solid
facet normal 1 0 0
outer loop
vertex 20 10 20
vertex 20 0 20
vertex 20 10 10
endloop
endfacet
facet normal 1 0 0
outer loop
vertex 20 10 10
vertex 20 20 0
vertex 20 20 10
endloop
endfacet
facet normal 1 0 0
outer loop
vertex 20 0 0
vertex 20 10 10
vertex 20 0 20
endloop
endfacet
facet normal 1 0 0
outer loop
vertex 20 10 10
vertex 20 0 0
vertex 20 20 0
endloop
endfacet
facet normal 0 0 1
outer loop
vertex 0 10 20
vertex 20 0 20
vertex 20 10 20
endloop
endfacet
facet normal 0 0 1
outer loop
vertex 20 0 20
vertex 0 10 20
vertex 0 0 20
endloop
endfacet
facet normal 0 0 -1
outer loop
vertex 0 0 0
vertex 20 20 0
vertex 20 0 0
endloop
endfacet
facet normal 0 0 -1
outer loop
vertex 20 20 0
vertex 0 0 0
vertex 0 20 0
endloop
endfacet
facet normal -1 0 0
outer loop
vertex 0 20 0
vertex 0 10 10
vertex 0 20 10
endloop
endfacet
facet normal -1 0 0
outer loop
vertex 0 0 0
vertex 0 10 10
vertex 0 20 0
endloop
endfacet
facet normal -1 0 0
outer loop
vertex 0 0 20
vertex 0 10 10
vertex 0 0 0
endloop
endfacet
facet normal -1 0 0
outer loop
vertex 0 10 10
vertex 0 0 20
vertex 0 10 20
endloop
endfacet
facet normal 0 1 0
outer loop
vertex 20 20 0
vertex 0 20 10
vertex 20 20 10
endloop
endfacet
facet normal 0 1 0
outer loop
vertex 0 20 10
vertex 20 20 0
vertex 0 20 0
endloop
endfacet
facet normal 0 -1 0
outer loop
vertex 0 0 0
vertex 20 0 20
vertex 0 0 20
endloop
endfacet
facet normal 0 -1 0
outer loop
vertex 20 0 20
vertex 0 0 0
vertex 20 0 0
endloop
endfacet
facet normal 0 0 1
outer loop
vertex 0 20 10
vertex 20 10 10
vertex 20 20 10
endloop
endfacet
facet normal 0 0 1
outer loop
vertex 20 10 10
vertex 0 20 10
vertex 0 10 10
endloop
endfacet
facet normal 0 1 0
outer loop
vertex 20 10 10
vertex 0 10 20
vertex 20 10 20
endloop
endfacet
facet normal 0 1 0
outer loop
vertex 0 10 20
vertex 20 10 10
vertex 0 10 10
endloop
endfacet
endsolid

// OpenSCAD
long_edge_length = 20;

short_edge_length = long_edge_length / 2;
pad = 0.001;

difference()
{
  cube(size=long_edge_length);

  translate([(-1 * pad),
             short_edge_length,
             short_edge_length])
  {
    cube([long_edge_length + (2 * pad),
          short_edge_length + pad,
          short_edge_length + pad]);
  }
}
